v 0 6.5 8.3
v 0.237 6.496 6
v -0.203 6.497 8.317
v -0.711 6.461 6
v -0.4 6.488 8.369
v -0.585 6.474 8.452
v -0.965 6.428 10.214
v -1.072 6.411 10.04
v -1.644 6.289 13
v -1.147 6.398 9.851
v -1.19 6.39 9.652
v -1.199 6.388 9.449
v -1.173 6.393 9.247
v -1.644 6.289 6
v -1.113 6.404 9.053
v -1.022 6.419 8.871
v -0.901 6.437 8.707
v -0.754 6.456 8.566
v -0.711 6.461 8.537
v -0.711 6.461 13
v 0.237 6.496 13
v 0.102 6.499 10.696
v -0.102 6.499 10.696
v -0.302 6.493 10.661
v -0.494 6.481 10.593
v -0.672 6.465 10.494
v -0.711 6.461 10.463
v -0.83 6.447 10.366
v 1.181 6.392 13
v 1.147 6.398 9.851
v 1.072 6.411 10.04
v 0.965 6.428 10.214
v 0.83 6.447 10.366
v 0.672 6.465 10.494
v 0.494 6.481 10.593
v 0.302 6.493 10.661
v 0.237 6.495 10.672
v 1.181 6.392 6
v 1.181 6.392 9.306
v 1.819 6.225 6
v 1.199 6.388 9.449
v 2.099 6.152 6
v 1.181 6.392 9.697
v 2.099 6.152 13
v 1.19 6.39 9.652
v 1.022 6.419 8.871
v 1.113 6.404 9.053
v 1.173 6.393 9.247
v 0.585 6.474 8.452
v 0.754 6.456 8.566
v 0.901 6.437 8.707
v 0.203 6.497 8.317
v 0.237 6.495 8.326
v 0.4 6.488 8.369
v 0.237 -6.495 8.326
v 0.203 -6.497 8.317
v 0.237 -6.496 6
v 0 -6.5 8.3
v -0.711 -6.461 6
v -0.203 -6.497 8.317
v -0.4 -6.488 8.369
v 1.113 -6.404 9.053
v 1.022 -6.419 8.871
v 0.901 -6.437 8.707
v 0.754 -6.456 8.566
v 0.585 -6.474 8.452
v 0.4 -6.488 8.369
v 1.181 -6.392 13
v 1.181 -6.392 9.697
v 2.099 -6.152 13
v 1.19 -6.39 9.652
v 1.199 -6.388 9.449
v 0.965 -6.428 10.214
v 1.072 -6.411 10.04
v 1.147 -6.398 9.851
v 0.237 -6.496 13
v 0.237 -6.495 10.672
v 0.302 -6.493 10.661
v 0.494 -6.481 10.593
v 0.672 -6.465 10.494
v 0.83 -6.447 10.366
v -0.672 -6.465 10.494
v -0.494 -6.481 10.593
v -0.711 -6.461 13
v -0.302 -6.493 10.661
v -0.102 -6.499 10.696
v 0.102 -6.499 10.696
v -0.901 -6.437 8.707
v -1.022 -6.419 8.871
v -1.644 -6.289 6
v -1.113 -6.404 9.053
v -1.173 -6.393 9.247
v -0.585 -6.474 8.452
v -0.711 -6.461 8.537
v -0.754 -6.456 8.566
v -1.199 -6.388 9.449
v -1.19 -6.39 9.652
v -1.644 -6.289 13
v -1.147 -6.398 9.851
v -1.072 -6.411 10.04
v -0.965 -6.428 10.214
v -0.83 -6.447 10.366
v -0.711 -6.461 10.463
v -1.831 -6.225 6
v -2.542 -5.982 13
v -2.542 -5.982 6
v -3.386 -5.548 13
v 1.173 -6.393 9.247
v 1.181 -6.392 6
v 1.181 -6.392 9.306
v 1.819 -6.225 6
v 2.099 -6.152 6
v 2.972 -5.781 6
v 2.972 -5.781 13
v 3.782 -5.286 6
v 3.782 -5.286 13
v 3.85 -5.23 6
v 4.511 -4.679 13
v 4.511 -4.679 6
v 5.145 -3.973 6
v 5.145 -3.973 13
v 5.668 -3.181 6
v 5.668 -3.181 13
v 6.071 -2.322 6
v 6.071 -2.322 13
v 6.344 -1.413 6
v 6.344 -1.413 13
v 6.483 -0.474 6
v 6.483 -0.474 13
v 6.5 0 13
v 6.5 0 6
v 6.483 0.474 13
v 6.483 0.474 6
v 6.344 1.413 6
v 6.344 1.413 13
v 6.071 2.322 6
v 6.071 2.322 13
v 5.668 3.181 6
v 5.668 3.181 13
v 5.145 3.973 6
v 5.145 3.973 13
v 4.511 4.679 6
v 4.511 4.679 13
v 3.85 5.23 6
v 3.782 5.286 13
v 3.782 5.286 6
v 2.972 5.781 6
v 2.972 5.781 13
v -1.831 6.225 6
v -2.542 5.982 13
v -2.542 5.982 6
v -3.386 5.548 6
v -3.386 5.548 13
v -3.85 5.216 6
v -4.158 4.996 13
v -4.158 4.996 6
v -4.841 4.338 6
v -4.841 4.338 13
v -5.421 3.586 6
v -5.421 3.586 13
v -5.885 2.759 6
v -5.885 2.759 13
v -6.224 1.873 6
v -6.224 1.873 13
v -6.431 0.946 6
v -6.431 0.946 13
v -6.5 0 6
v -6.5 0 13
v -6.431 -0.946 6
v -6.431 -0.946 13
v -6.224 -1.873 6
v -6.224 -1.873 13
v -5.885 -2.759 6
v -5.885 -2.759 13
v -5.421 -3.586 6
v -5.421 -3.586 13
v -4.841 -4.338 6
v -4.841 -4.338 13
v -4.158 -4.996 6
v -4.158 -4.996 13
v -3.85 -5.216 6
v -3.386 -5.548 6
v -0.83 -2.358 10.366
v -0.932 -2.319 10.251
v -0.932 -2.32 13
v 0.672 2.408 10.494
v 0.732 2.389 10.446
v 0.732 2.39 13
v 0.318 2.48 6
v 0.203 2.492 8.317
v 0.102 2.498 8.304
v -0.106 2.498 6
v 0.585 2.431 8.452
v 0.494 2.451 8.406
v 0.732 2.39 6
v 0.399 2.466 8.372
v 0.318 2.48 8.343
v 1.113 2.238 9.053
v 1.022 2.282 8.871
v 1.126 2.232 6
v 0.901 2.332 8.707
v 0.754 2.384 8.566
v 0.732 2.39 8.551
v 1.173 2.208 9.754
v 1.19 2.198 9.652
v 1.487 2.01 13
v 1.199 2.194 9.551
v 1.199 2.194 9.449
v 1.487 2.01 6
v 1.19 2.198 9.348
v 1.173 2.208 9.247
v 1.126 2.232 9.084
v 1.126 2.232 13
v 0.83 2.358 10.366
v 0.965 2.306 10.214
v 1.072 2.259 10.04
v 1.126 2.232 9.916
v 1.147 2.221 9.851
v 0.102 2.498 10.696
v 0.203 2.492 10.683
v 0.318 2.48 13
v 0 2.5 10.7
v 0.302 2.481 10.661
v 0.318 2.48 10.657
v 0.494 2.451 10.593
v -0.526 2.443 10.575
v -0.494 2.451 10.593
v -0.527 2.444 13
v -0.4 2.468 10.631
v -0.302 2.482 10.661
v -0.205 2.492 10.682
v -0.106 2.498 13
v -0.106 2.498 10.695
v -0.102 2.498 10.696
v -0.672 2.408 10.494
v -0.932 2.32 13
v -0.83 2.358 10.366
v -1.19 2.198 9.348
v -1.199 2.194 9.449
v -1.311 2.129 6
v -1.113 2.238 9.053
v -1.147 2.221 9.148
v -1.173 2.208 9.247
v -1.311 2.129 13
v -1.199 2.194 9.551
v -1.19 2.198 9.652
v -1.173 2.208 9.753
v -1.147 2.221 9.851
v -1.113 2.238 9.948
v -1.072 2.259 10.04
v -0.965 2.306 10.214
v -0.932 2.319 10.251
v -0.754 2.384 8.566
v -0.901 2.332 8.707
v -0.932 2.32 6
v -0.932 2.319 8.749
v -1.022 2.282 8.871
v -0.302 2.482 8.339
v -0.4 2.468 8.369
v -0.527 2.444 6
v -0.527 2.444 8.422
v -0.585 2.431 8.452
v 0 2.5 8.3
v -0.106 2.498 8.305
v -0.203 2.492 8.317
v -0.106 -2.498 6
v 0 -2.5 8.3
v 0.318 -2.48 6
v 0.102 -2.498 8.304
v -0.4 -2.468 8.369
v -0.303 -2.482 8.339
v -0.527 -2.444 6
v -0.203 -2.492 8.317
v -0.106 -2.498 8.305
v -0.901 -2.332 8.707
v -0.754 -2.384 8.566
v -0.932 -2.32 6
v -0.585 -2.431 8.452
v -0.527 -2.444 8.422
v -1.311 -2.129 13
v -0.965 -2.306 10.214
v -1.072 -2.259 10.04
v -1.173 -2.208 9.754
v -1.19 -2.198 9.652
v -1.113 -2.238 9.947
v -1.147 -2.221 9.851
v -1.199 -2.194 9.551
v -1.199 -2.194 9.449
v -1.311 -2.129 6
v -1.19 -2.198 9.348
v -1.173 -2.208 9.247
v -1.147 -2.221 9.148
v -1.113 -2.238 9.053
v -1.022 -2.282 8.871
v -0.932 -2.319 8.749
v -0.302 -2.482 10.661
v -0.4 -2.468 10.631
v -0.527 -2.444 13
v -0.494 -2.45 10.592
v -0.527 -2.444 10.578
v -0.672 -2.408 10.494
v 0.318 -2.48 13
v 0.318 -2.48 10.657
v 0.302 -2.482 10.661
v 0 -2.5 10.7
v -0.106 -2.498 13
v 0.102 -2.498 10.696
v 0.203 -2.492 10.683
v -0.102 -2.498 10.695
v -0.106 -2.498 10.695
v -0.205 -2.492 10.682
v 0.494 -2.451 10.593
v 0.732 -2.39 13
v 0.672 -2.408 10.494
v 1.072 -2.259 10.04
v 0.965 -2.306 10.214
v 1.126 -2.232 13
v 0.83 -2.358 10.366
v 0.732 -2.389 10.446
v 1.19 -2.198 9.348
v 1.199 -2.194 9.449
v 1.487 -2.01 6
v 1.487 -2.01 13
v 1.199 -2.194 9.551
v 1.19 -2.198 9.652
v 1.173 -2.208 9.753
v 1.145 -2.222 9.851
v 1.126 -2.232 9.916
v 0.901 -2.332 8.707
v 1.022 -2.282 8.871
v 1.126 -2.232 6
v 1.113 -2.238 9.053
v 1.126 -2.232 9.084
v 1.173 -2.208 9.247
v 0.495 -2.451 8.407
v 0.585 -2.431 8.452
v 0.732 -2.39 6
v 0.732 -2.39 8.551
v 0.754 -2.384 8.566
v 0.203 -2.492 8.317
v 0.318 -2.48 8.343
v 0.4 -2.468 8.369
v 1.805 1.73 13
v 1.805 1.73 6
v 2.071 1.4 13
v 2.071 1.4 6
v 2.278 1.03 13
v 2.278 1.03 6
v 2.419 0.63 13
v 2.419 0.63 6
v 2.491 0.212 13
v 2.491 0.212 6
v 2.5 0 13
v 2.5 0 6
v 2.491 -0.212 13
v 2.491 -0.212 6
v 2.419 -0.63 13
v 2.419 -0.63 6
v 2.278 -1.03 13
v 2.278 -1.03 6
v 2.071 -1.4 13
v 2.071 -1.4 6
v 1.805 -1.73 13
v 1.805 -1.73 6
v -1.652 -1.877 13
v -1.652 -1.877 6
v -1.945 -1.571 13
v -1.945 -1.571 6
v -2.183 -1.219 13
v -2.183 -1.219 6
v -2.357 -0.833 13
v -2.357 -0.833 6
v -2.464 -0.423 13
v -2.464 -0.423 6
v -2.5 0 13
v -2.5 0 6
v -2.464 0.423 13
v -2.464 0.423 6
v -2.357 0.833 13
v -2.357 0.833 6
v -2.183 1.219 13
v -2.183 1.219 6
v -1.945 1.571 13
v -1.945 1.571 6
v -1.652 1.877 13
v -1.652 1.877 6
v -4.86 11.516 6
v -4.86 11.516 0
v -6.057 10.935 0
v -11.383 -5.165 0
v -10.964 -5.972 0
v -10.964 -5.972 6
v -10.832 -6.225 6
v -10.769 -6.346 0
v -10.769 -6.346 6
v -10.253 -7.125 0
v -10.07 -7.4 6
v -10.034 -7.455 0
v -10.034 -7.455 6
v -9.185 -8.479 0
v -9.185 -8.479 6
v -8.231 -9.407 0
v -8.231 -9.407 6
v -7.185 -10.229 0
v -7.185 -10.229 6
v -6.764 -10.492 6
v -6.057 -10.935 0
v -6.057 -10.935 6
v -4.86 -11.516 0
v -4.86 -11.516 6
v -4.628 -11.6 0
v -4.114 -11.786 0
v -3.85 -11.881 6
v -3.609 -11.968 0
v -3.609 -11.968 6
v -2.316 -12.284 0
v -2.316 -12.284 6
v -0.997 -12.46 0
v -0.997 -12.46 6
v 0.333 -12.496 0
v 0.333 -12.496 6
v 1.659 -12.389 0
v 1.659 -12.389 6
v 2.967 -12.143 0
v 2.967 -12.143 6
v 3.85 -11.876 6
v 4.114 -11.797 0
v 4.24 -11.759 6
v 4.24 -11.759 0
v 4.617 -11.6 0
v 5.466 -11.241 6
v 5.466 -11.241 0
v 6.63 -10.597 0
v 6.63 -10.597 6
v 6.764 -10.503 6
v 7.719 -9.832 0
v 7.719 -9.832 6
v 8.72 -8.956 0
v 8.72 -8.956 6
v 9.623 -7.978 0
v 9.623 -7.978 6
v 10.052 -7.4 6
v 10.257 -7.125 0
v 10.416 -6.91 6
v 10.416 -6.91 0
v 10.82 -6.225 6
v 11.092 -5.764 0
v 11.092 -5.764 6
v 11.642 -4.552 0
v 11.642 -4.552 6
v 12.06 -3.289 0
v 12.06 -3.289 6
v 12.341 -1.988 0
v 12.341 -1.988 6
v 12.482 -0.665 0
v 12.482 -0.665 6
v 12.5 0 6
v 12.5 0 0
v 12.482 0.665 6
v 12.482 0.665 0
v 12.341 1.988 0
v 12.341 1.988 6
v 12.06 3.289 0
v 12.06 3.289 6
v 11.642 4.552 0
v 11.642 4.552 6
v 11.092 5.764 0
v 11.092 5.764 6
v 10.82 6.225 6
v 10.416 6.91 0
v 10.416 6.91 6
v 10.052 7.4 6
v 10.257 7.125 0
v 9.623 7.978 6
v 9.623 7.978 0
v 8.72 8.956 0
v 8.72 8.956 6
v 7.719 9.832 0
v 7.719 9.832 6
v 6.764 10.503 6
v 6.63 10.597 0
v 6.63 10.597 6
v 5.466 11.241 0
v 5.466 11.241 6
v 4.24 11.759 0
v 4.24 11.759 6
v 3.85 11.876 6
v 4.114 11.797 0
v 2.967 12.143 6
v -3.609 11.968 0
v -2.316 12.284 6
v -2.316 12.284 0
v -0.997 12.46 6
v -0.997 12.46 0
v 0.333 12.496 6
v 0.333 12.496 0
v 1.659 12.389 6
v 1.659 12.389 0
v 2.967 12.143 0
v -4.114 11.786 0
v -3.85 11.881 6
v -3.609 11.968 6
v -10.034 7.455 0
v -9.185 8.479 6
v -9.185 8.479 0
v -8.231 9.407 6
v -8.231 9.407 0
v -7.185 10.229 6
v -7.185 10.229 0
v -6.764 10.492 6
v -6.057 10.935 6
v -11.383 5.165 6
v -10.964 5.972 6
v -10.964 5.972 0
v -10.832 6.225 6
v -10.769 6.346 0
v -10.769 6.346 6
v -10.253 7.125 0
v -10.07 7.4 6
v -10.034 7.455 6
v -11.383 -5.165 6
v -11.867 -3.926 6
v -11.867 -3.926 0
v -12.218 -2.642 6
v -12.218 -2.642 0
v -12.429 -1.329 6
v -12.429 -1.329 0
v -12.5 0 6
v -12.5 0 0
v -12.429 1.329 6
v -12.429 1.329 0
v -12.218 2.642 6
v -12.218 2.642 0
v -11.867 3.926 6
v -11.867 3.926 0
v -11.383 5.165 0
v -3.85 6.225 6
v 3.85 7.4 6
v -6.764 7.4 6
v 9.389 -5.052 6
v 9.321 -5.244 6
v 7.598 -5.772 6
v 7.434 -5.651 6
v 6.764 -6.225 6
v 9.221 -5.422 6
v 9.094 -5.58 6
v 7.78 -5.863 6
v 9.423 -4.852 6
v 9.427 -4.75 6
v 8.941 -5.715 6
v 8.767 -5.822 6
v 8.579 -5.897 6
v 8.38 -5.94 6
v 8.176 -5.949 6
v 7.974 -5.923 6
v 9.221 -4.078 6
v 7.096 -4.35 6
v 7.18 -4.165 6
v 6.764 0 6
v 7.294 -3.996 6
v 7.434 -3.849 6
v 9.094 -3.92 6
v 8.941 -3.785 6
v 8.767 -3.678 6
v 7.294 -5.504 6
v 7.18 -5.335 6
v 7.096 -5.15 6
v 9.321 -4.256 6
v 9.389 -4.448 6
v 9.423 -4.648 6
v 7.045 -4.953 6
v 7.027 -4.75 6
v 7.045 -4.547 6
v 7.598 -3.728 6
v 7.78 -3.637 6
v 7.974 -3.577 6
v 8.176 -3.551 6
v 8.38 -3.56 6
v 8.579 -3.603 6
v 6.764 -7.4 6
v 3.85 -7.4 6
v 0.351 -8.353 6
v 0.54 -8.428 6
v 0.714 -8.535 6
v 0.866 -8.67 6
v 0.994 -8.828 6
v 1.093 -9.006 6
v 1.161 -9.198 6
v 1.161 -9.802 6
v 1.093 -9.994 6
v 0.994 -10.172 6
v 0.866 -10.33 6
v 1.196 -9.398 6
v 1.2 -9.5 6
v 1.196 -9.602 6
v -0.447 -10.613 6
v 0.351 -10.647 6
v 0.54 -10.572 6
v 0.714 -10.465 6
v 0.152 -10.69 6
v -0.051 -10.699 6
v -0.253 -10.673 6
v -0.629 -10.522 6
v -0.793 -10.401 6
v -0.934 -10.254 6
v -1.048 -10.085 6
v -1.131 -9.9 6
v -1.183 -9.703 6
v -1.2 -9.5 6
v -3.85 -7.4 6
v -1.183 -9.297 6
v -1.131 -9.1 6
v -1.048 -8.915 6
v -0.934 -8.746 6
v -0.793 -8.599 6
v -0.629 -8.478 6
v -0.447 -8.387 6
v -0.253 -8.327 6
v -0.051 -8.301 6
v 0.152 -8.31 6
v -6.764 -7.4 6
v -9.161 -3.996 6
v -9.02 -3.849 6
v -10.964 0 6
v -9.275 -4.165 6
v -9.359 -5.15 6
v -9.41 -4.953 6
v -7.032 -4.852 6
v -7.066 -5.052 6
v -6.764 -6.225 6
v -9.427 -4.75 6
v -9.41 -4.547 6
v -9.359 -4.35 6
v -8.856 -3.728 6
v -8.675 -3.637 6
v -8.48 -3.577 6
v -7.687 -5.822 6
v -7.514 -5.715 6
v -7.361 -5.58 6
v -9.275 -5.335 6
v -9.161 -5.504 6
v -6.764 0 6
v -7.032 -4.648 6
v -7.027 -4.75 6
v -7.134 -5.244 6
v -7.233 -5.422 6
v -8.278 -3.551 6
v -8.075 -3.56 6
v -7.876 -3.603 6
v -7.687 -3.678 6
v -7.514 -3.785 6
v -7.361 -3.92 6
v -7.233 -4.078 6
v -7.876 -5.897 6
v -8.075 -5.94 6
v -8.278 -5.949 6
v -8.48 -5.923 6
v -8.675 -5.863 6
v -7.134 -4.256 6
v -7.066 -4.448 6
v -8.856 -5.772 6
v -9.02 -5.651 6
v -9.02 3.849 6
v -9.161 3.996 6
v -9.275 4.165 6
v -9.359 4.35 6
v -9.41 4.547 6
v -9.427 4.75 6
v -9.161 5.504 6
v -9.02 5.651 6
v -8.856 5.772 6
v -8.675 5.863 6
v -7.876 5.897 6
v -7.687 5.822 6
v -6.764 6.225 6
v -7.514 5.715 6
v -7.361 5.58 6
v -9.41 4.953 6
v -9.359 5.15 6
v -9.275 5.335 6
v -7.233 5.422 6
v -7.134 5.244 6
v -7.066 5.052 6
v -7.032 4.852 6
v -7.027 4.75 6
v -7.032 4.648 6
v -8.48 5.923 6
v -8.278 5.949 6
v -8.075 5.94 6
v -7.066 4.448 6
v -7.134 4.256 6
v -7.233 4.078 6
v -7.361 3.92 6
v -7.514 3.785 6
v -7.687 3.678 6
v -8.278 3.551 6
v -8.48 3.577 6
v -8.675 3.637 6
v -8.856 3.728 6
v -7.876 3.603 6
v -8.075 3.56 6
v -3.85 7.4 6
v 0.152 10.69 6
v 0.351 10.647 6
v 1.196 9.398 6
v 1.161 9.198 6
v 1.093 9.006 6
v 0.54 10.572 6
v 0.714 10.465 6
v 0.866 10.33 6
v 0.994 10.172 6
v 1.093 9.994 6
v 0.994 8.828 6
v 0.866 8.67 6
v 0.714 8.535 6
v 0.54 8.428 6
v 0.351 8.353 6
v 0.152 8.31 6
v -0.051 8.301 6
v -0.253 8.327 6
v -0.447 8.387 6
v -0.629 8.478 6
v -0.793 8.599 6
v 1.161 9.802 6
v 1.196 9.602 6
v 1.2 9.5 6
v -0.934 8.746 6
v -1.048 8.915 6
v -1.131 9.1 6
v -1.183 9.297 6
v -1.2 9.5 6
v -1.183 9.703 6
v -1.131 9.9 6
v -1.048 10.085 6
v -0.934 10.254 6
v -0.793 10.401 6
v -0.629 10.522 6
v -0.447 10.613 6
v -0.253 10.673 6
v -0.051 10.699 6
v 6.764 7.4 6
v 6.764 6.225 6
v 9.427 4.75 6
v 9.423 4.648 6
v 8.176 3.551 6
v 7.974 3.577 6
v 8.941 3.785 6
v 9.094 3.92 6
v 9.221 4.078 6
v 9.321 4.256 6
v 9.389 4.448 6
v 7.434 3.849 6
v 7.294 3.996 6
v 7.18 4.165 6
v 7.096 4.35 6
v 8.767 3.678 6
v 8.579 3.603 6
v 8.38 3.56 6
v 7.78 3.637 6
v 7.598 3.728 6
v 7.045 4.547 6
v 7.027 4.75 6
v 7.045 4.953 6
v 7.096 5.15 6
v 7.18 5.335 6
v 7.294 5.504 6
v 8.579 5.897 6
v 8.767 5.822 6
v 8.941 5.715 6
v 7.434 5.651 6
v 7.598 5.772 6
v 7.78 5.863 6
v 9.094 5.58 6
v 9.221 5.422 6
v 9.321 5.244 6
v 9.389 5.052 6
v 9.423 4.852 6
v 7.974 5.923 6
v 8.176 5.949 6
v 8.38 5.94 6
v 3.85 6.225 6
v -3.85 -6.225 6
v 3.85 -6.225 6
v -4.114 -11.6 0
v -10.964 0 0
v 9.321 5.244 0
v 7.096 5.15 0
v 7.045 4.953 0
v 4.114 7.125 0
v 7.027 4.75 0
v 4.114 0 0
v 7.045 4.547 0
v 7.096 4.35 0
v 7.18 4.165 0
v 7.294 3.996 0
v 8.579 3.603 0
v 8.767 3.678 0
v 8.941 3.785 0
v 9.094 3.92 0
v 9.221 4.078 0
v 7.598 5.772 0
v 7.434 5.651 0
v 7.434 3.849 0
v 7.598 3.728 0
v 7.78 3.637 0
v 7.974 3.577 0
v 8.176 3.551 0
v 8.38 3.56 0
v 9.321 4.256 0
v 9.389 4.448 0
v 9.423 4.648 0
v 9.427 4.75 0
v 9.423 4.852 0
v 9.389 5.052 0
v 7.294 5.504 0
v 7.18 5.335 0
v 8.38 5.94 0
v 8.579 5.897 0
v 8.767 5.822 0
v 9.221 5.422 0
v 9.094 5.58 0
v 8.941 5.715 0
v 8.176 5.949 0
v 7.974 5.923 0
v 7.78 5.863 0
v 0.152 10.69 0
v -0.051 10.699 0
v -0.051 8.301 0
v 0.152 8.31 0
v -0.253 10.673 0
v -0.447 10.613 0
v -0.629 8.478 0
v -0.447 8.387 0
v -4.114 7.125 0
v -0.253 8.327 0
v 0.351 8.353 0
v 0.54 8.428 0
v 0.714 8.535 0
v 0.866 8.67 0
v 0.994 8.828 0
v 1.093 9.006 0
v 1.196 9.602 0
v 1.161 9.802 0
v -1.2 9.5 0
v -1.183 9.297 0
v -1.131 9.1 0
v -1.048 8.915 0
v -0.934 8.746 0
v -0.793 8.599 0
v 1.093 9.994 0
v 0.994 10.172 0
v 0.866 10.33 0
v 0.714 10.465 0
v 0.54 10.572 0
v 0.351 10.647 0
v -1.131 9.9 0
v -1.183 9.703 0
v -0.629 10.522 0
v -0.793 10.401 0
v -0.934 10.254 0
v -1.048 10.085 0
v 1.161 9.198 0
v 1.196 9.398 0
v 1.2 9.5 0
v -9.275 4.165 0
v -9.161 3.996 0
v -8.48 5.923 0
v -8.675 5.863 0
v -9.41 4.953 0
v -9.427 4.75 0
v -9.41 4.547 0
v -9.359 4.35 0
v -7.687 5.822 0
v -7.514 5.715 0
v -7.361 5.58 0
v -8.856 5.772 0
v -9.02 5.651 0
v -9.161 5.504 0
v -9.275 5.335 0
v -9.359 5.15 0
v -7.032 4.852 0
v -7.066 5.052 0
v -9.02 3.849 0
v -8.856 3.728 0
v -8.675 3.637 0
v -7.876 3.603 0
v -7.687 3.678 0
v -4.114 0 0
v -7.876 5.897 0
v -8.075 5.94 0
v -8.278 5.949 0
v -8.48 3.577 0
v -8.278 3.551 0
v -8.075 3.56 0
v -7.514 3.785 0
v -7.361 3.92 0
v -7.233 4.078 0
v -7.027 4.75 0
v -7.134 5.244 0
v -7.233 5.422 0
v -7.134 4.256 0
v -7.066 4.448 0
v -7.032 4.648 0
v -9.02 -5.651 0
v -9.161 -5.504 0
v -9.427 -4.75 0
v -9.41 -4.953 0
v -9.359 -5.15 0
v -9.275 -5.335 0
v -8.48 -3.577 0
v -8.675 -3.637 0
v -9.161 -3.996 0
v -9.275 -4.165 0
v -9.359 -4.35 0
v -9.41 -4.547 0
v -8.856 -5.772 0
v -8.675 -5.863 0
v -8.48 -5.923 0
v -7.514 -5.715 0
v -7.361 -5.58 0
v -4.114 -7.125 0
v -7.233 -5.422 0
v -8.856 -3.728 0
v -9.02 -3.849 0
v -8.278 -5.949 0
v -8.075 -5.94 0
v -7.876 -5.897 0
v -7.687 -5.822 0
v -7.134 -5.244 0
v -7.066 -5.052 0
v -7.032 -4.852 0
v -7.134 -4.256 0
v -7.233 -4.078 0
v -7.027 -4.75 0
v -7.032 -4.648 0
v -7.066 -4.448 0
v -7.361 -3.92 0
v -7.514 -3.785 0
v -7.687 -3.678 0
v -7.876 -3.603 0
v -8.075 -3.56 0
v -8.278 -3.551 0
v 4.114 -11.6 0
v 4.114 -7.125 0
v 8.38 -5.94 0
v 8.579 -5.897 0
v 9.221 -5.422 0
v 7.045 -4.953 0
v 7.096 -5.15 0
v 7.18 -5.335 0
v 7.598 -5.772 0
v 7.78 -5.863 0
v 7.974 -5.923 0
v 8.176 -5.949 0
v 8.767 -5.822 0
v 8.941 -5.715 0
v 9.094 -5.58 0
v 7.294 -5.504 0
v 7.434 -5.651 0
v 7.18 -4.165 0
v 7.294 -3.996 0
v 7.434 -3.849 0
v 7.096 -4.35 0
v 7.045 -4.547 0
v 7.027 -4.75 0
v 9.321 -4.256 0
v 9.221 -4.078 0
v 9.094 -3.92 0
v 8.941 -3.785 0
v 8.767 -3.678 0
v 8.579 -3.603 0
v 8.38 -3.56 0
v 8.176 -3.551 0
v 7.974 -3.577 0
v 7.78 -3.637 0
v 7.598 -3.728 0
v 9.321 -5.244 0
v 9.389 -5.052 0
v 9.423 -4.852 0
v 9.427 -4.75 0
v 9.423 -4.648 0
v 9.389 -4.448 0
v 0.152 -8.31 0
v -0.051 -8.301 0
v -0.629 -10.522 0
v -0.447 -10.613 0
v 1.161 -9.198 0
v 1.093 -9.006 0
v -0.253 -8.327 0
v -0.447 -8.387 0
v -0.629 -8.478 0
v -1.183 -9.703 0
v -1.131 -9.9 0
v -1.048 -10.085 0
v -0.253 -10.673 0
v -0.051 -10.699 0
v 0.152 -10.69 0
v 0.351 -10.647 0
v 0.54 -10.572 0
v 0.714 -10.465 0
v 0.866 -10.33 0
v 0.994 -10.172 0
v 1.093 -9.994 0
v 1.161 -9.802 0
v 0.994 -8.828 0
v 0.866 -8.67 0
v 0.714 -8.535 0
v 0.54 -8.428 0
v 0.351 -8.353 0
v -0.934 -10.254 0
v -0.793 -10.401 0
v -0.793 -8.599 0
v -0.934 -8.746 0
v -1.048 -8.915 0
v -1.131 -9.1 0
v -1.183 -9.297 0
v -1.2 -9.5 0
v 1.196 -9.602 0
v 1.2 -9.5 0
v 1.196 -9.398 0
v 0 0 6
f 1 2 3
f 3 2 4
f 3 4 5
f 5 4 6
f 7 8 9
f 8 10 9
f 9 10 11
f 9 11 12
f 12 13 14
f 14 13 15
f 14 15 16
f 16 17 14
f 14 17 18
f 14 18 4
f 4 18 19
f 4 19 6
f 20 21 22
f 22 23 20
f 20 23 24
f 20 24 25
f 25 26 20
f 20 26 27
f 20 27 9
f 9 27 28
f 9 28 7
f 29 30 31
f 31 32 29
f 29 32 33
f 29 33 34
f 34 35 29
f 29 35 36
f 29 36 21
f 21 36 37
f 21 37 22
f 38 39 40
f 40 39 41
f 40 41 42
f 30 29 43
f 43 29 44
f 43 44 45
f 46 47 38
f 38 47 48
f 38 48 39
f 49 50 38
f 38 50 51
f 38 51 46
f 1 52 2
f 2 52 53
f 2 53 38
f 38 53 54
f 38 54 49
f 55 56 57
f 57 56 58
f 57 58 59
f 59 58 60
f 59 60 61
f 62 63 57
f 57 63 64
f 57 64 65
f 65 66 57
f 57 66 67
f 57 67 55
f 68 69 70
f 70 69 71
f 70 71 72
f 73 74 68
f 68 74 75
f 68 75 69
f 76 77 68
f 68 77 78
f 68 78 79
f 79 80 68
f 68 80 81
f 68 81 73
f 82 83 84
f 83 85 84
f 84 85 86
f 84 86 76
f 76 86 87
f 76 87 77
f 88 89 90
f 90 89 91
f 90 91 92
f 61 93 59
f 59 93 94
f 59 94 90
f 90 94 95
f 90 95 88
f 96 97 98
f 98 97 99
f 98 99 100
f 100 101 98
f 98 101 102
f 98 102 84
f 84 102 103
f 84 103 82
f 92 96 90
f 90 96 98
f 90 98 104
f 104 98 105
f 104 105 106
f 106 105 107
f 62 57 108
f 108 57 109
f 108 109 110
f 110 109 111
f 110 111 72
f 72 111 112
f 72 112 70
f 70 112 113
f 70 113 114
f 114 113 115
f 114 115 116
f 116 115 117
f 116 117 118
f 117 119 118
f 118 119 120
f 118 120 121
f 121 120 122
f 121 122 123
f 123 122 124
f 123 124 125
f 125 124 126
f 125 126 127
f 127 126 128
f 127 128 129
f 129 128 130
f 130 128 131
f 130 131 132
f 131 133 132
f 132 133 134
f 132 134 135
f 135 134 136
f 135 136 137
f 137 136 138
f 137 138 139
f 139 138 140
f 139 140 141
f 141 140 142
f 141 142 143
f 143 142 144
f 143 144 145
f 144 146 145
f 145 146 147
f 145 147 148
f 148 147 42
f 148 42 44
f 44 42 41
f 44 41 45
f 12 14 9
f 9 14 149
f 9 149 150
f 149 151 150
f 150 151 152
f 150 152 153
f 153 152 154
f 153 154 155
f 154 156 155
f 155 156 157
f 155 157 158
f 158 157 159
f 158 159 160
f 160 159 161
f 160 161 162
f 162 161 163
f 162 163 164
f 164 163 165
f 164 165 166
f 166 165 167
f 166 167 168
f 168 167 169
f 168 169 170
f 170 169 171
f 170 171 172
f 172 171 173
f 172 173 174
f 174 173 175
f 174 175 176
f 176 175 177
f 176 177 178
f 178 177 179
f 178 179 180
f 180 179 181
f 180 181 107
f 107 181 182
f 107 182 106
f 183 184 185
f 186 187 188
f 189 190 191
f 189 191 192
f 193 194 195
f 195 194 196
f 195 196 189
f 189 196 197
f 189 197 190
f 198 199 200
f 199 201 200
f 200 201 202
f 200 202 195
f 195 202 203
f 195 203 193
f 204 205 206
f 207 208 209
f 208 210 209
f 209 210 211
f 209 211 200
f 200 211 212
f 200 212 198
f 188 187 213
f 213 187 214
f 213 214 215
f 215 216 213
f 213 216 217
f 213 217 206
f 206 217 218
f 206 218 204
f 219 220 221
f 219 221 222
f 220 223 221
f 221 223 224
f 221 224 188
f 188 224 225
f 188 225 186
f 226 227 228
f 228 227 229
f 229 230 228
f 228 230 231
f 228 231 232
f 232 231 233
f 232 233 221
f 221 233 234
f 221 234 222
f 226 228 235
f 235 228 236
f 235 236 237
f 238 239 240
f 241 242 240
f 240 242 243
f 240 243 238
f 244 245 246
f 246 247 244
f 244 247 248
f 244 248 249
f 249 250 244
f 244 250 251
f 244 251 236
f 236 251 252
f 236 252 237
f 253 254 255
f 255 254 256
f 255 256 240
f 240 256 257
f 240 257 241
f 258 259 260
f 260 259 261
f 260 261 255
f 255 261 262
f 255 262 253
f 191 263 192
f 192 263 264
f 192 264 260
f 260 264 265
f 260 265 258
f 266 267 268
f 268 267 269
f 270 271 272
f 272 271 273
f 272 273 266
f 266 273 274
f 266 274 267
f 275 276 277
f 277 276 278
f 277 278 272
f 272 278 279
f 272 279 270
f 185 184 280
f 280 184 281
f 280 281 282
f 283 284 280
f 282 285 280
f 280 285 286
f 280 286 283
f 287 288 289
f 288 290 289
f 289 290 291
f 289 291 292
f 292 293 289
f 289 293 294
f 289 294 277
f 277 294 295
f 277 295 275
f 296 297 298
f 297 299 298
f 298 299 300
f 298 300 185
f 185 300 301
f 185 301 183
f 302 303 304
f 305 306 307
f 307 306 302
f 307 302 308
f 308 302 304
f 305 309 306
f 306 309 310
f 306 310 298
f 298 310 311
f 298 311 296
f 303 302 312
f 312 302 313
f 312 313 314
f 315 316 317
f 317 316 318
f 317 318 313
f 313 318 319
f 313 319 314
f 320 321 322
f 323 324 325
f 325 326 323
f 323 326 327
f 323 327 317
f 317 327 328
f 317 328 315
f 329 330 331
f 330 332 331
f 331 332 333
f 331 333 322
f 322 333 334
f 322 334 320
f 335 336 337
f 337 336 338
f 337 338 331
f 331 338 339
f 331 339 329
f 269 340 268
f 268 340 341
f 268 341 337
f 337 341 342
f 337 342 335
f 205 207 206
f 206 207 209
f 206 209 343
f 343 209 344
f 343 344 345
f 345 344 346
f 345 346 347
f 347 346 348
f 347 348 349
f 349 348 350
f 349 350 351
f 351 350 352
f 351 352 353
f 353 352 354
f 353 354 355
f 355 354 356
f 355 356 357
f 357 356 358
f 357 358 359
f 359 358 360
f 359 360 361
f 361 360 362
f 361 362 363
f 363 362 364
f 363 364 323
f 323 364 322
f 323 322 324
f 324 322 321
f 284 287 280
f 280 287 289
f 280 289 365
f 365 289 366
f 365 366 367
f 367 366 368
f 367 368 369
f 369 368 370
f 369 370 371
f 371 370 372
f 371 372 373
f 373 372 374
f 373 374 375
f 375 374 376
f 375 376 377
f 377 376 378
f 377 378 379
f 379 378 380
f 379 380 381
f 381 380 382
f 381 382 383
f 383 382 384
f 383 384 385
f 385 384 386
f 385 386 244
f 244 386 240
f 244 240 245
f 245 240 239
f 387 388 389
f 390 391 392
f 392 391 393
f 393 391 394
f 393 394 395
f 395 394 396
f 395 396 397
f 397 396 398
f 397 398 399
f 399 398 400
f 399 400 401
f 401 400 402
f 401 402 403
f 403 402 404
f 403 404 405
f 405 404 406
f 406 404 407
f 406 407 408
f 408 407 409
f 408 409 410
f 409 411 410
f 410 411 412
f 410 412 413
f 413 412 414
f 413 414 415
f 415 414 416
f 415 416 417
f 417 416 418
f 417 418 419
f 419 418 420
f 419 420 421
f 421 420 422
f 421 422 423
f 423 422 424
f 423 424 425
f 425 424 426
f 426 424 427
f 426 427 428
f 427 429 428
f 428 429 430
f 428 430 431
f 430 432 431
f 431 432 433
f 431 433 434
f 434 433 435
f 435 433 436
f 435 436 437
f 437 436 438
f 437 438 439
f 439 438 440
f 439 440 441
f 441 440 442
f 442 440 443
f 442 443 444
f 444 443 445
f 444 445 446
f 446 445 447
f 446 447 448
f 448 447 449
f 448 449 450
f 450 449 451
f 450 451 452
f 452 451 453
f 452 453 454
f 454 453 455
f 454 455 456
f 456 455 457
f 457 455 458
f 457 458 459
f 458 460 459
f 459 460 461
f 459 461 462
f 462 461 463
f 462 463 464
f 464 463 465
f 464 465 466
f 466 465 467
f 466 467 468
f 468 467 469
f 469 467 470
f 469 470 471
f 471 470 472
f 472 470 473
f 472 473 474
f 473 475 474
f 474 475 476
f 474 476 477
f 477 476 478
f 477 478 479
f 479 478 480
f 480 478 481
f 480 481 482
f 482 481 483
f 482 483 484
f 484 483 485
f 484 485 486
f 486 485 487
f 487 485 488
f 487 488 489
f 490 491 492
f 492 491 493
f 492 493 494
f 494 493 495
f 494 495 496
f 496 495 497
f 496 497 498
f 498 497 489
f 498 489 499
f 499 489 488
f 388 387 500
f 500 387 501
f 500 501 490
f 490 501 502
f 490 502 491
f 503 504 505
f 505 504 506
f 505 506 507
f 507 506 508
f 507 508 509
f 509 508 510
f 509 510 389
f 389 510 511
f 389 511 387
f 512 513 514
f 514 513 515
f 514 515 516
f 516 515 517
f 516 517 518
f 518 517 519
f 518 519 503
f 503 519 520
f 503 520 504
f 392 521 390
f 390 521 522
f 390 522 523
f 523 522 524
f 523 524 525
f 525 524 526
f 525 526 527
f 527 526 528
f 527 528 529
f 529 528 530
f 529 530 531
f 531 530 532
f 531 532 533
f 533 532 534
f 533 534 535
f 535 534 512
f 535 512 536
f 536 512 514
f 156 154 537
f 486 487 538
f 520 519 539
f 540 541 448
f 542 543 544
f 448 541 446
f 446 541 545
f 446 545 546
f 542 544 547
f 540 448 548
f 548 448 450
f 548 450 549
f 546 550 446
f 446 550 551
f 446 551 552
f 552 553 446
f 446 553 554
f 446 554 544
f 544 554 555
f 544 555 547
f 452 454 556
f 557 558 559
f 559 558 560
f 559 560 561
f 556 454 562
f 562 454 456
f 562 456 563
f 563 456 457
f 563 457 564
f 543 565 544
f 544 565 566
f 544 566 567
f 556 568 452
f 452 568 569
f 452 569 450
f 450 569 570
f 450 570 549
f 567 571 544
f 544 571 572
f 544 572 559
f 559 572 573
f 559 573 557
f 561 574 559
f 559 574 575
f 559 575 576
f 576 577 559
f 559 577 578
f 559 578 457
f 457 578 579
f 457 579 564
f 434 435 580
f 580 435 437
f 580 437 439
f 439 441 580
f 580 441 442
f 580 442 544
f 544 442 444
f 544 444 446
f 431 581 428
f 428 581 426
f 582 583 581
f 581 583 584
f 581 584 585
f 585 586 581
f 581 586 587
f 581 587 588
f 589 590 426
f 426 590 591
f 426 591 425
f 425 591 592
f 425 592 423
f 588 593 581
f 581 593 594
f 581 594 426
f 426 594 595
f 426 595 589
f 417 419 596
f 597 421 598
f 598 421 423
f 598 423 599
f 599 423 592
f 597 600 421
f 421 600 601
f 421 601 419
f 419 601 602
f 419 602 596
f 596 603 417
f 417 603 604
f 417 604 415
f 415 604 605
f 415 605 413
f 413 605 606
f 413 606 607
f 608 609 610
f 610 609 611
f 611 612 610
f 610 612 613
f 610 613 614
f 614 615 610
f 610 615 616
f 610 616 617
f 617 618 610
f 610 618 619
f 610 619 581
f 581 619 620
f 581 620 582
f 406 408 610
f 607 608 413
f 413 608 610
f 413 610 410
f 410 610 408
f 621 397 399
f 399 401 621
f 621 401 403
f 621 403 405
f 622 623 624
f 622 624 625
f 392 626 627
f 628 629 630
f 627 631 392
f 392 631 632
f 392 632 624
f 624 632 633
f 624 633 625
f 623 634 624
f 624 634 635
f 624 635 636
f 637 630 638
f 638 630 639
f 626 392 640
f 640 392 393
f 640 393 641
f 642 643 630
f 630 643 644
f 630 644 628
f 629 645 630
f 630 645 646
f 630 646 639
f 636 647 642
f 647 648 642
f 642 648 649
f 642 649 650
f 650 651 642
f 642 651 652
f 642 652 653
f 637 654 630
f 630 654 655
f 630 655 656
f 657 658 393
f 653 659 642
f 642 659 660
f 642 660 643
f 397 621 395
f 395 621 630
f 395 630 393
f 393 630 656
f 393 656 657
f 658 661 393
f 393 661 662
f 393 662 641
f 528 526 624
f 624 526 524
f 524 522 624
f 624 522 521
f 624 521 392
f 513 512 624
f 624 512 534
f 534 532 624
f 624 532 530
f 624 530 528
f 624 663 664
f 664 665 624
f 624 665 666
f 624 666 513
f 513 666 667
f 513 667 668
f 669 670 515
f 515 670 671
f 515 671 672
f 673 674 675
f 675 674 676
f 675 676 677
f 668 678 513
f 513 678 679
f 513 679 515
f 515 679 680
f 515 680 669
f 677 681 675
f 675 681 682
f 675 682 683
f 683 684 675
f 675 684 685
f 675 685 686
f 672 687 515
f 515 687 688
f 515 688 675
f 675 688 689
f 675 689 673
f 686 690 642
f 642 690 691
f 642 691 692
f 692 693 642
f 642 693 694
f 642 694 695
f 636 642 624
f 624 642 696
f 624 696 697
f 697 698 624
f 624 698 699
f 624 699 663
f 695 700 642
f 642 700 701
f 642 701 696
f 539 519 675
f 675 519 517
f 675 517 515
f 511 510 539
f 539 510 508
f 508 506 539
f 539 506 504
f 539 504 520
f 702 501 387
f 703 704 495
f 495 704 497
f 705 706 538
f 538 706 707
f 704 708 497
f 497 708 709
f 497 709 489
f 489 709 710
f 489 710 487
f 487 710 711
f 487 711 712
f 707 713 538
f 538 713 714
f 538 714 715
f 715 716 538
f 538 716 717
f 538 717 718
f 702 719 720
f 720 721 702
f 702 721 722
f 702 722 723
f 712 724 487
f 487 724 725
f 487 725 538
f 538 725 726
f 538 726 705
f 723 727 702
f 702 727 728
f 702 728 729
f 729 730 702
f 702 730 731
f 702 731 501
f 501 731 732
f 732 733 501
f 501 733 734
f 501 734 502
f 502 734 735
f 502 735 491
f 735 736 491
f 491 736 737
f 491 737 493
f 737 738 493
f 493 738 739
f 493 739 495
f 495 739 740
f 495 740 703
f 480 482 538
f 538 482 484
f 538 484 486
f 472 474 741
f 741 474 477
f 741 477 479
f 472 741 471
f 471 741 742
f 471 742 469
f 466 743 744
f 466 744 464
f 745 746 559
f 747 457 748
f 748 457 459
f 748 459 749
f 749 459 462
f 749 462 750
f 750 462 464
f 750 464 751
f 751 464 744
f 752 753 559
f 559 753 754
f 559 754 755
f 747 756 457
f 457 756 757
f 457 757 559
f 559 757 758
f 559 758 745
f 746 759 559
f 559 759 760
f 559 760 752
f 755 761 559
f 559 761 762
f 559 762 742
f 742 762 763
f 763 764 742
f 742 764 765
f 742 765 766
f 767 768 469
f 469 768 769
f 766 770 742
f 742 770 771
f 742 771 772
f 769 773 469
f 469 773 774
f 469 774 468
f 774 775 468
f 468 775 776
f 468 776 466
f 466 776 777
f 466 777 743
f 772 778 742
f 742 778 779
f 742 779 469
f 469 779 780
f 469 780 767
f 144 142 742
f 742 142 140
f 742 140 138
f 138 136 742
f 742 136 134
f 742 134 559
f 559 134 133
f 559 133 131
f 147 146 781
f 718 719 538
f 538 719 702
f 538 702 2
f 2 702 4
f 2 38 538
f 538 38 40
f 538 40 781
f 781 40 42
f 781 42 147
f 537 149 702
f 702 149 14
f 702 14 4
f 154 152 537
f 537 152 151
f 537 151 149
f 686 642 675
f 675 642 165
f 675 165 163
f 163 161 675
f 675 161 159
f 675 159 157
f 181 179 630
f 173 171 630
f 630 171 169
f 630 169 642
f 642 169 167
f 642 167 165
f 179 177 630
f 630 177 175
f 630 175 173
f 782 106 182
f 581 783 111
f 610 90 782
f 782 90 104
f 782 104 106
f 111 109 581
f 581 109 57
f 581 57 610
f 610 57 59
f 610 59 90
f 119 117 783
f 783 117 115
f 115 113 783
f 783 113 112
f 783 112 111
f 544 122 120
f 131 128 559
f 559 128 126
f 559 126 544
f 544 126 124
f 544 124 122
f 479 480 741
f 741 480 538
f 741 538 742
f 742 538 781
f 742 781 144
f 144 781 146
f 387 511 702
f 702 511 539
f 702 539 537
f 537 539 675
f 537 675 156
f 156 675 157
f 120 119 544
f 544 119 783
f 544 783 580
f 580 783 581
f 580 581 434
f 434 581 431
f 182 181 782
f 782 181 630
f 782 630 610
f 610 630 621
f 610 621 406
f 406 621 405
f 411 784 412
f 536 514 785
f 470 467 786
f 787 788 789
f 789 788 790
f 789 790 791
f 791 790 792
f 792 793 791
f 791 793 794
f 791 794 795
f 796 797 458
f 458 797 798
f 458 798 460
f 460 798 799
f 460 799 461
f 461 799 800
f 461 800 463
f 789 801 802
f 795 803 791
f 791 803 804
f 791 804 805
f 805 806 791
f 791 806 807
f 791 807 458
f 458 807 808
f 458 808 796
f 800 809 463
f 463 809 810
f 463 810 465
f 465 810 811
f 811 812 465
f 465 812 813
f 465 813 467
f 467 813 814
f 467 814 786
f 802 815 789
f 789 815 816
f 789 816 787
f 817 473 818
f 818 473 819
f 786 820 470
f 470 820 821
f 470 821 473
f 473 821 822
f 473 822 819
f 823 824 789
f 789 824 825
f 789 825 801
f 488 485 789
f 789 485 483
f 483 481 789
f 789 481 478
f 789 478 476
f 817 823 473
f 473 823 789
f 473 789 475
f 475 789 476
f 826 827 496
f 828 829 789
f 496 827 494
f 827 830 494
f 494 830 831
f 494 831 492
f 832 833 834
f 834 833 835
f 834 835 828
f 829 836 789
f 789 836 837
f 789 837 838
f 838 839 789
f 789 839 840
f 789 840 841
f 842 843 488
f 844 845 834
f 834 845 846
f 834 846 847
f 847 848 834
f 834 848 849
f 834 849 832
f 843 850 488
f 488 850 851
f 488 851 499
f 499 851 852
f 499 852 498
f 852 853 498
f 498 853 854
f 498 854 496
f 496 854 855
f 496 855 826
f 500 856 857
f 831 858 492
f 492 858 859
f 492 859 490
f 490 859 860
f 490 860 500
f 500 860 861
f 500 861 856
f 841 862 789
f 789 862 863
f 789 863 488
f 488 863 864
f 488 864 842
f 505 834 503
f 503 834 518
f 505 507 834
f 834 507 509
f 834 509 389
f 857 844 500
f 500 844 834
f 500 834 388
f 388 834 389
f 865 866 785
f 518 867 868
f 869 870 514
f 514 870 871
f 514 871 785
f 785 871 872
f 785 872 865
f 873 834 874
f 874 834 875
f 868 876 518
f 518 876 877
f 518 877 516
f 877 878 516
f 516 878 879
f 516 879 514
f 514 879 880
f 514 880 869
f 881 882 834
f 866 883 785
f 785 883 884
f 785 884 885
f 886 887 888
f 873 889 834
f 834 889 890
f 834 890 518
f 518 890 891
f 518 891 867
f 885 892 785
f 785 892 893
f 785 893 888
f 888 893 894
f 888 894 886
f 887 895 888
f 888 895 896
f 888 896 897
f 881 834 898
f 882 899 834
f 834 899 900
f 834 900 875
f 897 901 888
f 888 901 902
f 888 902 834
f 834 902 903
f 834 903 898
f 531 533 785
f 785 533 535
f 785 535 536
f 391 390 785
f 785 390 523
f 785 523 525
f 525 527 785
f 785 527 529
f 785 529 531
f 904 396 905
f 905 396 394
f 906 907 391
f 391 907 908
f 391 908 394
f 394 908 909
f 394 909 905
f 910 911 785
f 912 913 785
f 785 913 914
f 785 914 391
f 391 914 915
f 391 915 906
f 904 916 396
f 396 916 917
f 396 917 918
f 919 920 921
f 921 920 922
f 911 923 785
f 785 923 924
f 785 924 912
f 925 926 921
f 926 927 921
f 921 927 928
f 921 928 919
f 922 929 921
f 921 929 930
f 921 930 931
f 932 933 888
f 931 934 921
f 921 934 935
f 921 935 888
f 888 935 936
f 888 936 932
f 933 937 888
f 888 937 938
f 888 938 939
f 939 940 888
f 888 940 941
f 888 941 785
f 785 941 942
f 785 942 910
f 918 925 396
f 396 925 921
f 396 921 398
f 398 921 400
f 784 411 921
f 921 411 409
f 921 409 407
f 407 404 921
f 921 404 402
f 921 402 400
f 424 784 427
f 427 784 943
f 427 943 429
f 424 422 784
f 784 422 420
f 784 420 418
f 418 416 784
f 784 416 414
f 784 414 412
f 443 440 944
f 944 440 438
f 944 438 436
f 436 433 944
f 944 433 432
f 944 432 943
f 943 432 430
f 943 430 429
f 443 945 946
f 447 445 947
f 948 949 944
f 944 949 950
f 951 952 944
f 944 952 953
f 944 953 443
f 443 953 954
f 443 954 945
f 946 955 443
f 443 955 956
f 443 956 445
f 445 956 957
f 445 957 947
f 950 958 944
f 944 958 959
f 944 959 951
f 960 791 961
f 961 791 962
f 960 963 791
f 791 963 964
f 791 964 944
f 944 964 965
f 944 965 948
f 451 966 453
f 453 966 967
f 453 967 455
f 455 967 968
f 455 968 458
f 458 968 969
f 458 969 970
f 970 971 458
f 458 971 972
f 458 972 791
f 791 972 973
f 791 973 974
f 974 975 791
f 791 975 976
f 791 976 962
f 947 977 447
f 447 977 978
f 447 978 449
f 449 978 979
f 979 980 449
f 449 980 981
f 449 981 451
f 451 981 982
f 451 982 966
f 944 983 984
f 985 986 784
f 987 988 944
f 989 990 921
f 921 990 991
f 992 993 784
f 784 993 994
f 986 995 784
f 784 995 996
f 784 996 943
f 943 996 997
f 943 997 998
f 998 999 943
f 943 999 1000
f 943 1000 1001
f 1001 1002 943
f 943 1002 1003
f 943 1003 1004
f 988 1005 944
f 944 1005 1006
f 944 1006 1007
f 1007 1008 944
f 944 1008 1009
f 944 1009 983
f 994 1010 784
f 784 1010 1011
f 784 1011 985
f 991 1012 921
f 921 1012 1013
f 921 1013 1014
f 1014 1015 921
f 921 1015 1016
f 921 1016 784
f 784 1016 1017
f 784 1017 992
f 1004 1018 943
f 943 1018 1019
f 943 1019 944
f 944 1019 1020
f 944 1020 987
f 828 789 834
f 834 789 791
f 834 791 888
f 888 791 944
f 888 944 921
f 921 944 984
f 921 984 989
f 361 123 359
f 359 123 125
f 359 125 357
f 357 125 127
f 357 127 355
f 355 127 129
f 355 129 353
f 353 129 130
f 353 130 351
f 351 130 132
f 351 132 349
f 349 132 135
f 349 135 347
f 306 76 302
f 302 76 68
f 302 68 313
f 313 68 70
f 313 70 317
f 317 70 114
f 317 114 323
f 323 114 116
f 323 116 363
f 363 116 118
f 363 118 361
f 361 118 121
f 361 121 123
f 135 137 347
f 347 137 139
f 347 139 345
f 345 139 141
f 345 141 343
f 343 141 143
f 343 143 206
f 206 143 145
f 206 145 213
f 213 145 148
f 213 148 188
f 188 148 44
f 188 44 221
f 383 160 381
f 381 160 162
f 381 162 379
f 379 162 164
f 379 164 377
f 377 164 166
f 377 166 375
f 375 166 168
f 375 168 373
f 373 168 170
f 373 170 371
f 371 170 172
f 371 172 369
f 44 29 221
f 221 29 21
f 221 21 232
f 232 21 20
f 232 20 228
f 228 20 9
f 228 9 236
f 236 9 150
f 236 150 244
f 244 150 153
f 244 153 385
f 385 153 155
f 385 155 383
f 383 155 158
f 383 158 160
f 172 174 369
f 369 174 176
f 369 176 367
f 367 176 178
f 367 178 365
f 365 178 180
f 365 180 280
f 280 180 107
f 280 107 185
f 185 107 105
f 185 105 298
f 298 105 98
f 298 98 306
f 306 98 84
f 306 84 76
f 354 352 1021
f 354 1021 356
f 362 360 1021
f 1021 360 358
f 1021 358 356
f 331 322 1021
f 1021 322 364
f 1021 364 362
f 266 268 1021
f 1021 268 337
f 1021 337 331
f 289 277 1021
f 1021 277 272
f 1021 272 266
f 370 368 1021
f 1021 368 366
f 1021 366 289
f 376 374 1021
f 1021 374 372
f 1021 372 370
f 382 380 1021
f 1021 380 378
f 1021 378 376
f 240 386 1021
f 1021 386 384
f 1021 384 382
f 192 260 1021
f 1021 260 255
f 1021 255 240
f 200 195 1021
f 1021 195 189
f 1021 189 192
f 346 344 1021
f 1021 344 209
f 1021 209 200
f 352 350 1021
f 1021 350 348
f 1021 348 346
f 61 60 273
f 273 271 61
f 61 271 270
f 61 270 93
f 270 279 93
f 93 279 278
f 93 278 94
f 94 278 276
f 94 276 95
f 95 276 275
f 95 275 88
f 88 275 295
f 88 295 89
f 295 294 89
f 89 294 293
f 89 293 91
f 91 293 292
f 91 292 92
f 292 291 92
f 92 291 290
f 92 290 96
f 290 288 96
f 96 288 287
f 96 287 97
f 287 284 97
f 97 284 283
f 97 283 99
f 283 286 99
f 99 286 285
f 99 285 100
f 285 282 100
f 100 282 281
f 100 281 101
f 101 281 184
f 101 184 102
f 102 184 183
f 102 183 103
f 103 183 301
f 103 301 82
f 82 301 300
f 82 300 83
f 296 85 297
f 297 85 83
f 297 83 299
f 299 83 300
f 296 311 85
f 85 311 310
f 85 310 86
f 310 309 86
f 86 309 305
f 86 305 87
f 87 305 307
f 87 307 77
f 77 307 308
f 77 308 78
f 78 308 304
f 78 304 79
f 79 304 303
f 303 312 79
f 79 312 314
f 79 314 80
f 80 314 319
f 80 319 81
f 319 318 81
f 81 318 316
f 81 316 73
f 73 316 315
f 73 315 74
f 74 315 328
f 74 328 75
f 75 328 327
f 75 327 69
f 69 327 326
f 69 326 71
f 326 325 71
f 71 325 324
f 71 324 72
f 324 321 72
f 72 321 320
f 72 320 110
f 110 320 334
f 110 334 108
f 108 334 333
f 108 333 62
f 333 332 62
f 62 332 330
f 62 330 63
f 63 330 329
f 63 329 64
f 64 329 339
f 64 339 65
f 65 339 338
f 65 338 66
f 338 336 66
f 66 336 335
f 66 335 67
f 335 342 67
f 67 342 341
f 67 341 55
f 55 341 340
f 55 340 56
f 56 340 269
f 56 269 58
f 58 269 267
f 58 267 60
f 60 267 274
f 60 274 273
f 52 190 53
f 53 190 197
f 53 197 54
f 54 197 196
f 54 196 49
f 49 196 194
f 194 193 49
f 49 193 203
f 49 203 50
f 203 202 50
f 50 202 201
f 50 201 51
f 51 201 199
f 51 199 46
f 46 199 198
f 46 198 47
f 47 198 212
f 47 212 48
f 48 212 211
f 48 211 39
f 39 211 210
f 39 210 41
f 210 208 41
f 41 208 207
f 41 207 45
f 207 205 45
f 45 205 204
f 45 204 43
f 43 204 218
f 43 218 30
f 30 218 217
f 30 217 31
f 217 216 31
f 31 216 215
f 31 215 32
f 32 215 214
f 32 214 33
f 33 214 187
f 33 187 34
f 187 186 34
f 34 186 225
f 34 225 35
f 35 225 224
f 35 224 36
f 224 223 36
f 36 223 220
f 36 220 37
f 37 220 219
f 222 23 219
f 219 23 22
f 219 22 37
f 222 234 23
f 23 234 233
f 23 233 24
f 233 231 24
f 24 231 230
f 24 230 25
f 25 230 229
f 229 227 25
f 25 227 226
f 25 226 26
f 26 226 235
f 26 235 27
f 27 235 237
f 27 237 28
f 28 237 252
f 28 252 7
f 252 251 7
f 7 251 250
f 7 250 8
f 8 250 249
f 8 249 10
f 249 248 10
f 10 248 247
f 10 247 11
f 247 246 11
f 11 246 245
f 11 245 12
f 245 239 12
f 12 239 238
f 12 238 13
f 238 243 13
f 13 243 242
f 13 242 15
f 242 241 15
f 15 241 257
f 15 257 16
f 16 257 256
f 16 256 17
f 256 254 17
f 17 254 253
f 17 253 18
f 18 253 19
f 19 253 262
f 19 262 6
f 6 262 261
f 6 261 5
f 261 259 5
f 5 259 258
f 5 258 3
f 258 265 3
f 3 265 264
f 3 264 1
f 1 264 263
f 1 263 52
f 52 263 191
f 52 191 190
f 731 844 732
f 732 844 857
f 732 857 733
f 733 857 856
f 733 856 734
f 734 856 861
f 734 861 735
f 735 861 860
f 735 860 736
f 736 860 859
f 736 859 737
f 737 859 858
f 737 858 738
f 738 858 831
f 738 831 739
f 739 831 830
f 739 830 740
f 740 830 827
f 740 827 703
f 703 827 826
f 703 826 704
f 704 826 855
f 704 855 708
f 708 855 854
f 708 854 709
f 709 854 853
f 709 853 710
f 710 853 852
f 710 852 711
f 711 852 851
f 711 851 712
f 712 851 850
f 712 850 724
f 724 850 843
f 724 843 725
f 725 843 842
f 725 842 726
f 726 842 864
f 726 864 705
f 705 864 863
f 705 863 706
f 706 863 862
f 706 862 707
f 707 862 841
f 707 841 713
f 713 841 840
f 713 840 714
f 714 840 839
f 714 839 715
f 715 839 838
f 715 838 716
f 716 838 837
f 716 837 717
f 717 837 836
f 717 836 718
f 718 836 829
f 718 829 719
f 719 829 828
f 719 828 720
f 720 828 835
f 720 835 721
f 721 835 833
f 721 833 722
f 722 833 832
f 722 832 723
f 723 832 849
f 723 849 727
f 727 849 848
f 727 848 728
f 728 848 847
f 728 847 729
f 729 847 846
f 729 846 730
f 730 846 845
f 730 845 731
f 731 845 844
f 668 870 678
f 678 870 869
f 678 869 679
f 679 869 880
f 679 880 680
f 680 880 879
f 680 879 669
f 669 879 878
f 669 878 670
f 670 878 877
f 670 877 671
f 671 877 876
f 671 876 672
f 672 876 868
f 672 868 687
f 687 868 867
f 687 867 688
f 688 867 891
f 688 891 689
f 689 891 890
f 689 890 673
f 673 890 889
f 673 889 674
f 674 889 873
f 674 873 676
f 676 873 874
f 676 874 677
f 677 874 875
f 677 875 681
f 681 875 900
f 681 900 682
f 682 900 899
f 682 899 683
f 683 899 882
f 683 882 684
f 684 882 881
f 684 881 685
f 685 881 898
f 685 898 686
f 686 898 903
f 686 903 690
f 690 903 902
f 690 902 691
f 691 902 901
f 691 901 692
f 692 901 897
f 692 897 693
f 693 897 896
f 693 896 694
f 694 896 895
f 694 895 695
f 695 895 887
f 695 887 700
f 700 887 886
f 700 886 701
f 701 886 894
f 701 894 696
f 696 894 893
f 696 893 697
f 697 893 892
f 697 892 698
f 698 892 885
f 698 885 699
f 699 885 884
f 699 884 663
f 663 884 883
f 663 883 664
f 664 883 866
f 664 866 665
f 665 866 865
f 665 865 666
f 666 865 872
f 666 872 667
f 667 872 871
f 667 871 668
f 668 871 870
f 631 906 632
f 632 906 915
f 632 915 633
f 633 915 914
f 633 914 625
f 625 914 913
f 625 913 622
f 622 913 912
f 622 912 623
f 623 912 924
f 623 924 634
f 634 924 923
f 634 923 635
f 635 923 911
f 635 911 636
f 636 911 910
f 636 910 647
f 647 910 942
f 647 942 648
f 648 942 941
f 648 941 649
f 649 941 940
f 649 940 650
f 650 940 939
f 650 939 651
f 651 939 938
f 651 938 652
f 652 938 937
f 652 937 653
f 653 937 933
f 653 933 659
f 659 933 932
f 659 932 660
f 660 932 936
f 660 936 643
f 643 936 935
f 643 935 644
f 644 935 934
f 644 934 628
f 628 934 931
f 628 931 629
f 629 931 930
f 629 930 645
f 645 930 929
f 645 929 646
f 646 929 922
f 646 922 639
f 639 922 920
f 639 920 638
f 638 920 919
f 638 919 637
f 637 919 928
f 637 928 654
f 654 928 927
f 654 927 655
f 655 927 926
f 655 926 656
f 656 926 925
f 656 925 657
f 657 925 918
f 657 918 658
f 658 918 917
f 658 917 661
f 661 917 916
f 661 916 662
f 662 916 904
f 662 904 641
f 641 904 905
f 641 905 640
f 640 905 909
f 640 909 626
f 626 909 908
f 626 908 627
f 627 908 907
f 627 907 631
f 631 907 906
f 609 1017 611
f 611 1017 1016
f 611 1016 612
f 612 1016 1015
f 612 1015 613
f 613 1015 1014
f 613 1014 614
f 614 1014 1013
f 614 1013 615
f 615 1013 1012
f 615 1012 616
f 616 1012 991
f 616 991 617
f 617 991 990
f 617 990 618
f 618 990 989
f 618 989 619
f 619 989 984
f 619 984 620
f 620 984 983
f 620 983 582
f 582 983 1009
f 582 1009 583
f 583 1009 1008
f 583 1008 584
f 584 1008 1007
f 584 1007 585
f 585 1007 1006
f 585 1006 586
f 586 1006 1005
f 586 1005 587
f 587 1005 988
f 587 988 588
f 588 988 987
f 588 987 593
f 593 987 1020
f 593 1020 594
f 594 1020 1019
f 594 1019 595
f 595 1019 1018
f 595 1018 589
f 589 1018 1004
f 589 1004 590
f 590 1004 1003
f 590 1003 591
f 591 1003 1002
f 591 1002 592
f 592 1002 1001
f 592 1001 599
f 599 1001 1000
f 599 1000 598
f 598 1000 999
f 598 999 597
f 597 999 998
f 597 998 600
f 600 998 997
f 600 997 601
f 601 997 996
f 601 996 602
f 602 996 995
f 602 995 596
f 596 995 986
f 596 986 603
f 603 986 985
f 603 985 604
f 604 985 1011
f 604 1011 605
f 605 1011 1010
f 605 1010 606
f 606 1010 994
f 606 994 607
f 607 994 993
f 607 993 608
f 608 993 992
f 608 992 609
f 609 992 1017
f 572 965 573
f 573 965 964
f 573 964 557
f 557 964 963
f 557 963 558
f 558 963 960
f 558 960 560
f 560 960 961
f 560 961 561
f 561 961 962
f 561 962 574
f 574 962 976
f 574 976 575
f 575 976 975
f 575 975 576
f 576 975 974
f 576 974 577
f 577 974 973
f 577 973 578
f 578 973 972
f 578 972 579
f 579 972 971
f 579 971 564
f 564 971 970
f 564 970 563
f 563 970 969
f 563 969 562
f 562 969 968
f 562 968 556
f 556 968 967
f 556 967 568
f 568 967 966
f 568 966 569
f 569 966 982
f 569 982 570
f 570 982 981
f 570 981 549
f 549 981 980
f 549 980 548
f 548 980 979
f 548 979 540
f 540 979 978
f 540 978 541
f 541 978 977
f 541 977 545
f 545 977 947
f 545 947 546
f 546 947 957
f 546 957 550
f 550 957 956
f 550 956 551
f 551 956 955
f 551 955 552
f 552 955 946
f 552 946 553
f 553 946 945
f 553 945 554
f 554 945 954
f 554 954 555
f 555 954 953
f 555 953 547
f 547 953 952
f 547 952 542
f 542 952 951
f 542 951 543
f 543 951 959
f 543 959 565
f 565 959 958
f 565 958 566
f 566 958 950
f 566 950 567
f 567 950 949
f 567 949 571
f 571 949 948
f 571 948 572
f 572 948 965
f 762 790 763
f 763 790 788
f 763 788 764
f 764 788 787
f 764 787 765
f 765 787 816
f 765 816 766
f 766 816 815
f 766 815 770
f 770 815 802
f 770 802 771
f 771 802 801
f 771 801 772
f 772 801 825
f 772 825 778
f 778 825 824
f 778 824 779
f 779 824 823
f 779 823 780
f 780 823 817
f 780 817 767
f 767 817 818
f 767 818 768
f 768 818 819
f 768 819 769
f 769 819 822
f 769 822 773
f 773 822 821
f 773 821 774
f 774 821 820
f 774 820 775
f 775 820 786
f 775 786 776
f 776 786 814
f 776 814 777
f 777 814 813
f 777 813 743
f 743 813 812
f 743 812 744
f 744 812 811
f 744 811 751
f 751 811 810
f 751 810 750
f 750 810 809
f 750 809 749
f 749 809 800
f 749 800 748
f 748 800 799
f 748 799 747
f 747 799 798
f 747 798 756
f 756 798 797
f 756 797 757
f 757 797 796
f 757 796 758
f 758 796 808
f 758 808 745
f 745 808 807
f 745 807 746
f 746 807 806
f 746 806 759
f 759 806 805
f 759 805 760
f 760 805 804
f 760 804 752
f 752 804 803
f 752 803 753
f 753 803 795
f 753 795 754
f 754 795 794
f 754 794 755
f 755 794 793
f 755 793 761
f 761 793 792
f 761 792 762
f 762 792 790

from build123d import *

# Parameters (mm, degrees)
SKETCH2_R               = 12.5
BOSS_EXTRUDE1_DEPTH     = 6
SKETCH3_R               = 6.5
SKETCH3_R_2             = 2.5
BOSS_EXTRUDE2_DEPTH     = 7
CUT_EXTRUDE1_DEPTH      = 25
CUT_EXTRUDE1_DEPTH_BACK = 25
SKETCH4_R               = 1.2
SKETCH5_R               = 1.2
CUT_EXTRUDE2_DEPTH      = 25
CIRPATTERN1_COUNT       = 6


with BuildPart() as part:
    # Sketch2 → Boss-Extrude1 (new body)
    with BuildSketch(Plane.XY):
        Circle(SKETCH2_R)
    extrude(amount=BOSS_EXTRUDE1_DEPTH)

    # Sketch3 → Boss-Extrude2 (add)
    with BuildSketch(Plane.XY.offset(6)):
        Circle(SKETCH3_R)
        Circle(SKETCH3_R_2, mode=Mode.SUBTRACT)
    extrude(amount=BOSS_EXTRUDE2_DEPTH)

    # Sketch4 → Cut-Extrude1 (cut, two sides: drawn at the far end of the back side and taken through both)
    with BuildSketch(Plane(origin=(0, 0, 0), x_dir=(1, 0, 0), z_dir=(0, 1, 0)).offset(-CUT_EXTRUDE1_DEPTH_BACK)):
        with Locations((0, -9.5)):
            Circle(SKETCH4_R)
    extrude(amount=CUT_EXTRUDE1_DEPTH + CUT_EXTRUDE1_DEPTH_BACK, mode=Mode.SUBTRACT)

    # Sketch5 → Cut-Extrude2 (cut, symmetric)
    with BuildSketch(Plane.XY.offset(6)):
        with Locations((0, 9.5)):
            Circle(SKETCH5_R)
    cut_extrude2 = extrude(amount=CUT_EXTRUDE2_DEPTH, both=True, mode=Mode.SUBTRACT)

    # CirPattern1: Cut-Extrude2 ×6 about axis
    cirpattern1_axis = Axis((0, 0, -0.6), (0, 0, 1))
    for i in range(1, CIRPATTERN1_COUNT):
        add(cut_extrude2.rotate(cirpattern1_axis, i * 360 / CIRPATTERN1_COUNT), mode=Mode.SUBTRACT)


solid = part.part
